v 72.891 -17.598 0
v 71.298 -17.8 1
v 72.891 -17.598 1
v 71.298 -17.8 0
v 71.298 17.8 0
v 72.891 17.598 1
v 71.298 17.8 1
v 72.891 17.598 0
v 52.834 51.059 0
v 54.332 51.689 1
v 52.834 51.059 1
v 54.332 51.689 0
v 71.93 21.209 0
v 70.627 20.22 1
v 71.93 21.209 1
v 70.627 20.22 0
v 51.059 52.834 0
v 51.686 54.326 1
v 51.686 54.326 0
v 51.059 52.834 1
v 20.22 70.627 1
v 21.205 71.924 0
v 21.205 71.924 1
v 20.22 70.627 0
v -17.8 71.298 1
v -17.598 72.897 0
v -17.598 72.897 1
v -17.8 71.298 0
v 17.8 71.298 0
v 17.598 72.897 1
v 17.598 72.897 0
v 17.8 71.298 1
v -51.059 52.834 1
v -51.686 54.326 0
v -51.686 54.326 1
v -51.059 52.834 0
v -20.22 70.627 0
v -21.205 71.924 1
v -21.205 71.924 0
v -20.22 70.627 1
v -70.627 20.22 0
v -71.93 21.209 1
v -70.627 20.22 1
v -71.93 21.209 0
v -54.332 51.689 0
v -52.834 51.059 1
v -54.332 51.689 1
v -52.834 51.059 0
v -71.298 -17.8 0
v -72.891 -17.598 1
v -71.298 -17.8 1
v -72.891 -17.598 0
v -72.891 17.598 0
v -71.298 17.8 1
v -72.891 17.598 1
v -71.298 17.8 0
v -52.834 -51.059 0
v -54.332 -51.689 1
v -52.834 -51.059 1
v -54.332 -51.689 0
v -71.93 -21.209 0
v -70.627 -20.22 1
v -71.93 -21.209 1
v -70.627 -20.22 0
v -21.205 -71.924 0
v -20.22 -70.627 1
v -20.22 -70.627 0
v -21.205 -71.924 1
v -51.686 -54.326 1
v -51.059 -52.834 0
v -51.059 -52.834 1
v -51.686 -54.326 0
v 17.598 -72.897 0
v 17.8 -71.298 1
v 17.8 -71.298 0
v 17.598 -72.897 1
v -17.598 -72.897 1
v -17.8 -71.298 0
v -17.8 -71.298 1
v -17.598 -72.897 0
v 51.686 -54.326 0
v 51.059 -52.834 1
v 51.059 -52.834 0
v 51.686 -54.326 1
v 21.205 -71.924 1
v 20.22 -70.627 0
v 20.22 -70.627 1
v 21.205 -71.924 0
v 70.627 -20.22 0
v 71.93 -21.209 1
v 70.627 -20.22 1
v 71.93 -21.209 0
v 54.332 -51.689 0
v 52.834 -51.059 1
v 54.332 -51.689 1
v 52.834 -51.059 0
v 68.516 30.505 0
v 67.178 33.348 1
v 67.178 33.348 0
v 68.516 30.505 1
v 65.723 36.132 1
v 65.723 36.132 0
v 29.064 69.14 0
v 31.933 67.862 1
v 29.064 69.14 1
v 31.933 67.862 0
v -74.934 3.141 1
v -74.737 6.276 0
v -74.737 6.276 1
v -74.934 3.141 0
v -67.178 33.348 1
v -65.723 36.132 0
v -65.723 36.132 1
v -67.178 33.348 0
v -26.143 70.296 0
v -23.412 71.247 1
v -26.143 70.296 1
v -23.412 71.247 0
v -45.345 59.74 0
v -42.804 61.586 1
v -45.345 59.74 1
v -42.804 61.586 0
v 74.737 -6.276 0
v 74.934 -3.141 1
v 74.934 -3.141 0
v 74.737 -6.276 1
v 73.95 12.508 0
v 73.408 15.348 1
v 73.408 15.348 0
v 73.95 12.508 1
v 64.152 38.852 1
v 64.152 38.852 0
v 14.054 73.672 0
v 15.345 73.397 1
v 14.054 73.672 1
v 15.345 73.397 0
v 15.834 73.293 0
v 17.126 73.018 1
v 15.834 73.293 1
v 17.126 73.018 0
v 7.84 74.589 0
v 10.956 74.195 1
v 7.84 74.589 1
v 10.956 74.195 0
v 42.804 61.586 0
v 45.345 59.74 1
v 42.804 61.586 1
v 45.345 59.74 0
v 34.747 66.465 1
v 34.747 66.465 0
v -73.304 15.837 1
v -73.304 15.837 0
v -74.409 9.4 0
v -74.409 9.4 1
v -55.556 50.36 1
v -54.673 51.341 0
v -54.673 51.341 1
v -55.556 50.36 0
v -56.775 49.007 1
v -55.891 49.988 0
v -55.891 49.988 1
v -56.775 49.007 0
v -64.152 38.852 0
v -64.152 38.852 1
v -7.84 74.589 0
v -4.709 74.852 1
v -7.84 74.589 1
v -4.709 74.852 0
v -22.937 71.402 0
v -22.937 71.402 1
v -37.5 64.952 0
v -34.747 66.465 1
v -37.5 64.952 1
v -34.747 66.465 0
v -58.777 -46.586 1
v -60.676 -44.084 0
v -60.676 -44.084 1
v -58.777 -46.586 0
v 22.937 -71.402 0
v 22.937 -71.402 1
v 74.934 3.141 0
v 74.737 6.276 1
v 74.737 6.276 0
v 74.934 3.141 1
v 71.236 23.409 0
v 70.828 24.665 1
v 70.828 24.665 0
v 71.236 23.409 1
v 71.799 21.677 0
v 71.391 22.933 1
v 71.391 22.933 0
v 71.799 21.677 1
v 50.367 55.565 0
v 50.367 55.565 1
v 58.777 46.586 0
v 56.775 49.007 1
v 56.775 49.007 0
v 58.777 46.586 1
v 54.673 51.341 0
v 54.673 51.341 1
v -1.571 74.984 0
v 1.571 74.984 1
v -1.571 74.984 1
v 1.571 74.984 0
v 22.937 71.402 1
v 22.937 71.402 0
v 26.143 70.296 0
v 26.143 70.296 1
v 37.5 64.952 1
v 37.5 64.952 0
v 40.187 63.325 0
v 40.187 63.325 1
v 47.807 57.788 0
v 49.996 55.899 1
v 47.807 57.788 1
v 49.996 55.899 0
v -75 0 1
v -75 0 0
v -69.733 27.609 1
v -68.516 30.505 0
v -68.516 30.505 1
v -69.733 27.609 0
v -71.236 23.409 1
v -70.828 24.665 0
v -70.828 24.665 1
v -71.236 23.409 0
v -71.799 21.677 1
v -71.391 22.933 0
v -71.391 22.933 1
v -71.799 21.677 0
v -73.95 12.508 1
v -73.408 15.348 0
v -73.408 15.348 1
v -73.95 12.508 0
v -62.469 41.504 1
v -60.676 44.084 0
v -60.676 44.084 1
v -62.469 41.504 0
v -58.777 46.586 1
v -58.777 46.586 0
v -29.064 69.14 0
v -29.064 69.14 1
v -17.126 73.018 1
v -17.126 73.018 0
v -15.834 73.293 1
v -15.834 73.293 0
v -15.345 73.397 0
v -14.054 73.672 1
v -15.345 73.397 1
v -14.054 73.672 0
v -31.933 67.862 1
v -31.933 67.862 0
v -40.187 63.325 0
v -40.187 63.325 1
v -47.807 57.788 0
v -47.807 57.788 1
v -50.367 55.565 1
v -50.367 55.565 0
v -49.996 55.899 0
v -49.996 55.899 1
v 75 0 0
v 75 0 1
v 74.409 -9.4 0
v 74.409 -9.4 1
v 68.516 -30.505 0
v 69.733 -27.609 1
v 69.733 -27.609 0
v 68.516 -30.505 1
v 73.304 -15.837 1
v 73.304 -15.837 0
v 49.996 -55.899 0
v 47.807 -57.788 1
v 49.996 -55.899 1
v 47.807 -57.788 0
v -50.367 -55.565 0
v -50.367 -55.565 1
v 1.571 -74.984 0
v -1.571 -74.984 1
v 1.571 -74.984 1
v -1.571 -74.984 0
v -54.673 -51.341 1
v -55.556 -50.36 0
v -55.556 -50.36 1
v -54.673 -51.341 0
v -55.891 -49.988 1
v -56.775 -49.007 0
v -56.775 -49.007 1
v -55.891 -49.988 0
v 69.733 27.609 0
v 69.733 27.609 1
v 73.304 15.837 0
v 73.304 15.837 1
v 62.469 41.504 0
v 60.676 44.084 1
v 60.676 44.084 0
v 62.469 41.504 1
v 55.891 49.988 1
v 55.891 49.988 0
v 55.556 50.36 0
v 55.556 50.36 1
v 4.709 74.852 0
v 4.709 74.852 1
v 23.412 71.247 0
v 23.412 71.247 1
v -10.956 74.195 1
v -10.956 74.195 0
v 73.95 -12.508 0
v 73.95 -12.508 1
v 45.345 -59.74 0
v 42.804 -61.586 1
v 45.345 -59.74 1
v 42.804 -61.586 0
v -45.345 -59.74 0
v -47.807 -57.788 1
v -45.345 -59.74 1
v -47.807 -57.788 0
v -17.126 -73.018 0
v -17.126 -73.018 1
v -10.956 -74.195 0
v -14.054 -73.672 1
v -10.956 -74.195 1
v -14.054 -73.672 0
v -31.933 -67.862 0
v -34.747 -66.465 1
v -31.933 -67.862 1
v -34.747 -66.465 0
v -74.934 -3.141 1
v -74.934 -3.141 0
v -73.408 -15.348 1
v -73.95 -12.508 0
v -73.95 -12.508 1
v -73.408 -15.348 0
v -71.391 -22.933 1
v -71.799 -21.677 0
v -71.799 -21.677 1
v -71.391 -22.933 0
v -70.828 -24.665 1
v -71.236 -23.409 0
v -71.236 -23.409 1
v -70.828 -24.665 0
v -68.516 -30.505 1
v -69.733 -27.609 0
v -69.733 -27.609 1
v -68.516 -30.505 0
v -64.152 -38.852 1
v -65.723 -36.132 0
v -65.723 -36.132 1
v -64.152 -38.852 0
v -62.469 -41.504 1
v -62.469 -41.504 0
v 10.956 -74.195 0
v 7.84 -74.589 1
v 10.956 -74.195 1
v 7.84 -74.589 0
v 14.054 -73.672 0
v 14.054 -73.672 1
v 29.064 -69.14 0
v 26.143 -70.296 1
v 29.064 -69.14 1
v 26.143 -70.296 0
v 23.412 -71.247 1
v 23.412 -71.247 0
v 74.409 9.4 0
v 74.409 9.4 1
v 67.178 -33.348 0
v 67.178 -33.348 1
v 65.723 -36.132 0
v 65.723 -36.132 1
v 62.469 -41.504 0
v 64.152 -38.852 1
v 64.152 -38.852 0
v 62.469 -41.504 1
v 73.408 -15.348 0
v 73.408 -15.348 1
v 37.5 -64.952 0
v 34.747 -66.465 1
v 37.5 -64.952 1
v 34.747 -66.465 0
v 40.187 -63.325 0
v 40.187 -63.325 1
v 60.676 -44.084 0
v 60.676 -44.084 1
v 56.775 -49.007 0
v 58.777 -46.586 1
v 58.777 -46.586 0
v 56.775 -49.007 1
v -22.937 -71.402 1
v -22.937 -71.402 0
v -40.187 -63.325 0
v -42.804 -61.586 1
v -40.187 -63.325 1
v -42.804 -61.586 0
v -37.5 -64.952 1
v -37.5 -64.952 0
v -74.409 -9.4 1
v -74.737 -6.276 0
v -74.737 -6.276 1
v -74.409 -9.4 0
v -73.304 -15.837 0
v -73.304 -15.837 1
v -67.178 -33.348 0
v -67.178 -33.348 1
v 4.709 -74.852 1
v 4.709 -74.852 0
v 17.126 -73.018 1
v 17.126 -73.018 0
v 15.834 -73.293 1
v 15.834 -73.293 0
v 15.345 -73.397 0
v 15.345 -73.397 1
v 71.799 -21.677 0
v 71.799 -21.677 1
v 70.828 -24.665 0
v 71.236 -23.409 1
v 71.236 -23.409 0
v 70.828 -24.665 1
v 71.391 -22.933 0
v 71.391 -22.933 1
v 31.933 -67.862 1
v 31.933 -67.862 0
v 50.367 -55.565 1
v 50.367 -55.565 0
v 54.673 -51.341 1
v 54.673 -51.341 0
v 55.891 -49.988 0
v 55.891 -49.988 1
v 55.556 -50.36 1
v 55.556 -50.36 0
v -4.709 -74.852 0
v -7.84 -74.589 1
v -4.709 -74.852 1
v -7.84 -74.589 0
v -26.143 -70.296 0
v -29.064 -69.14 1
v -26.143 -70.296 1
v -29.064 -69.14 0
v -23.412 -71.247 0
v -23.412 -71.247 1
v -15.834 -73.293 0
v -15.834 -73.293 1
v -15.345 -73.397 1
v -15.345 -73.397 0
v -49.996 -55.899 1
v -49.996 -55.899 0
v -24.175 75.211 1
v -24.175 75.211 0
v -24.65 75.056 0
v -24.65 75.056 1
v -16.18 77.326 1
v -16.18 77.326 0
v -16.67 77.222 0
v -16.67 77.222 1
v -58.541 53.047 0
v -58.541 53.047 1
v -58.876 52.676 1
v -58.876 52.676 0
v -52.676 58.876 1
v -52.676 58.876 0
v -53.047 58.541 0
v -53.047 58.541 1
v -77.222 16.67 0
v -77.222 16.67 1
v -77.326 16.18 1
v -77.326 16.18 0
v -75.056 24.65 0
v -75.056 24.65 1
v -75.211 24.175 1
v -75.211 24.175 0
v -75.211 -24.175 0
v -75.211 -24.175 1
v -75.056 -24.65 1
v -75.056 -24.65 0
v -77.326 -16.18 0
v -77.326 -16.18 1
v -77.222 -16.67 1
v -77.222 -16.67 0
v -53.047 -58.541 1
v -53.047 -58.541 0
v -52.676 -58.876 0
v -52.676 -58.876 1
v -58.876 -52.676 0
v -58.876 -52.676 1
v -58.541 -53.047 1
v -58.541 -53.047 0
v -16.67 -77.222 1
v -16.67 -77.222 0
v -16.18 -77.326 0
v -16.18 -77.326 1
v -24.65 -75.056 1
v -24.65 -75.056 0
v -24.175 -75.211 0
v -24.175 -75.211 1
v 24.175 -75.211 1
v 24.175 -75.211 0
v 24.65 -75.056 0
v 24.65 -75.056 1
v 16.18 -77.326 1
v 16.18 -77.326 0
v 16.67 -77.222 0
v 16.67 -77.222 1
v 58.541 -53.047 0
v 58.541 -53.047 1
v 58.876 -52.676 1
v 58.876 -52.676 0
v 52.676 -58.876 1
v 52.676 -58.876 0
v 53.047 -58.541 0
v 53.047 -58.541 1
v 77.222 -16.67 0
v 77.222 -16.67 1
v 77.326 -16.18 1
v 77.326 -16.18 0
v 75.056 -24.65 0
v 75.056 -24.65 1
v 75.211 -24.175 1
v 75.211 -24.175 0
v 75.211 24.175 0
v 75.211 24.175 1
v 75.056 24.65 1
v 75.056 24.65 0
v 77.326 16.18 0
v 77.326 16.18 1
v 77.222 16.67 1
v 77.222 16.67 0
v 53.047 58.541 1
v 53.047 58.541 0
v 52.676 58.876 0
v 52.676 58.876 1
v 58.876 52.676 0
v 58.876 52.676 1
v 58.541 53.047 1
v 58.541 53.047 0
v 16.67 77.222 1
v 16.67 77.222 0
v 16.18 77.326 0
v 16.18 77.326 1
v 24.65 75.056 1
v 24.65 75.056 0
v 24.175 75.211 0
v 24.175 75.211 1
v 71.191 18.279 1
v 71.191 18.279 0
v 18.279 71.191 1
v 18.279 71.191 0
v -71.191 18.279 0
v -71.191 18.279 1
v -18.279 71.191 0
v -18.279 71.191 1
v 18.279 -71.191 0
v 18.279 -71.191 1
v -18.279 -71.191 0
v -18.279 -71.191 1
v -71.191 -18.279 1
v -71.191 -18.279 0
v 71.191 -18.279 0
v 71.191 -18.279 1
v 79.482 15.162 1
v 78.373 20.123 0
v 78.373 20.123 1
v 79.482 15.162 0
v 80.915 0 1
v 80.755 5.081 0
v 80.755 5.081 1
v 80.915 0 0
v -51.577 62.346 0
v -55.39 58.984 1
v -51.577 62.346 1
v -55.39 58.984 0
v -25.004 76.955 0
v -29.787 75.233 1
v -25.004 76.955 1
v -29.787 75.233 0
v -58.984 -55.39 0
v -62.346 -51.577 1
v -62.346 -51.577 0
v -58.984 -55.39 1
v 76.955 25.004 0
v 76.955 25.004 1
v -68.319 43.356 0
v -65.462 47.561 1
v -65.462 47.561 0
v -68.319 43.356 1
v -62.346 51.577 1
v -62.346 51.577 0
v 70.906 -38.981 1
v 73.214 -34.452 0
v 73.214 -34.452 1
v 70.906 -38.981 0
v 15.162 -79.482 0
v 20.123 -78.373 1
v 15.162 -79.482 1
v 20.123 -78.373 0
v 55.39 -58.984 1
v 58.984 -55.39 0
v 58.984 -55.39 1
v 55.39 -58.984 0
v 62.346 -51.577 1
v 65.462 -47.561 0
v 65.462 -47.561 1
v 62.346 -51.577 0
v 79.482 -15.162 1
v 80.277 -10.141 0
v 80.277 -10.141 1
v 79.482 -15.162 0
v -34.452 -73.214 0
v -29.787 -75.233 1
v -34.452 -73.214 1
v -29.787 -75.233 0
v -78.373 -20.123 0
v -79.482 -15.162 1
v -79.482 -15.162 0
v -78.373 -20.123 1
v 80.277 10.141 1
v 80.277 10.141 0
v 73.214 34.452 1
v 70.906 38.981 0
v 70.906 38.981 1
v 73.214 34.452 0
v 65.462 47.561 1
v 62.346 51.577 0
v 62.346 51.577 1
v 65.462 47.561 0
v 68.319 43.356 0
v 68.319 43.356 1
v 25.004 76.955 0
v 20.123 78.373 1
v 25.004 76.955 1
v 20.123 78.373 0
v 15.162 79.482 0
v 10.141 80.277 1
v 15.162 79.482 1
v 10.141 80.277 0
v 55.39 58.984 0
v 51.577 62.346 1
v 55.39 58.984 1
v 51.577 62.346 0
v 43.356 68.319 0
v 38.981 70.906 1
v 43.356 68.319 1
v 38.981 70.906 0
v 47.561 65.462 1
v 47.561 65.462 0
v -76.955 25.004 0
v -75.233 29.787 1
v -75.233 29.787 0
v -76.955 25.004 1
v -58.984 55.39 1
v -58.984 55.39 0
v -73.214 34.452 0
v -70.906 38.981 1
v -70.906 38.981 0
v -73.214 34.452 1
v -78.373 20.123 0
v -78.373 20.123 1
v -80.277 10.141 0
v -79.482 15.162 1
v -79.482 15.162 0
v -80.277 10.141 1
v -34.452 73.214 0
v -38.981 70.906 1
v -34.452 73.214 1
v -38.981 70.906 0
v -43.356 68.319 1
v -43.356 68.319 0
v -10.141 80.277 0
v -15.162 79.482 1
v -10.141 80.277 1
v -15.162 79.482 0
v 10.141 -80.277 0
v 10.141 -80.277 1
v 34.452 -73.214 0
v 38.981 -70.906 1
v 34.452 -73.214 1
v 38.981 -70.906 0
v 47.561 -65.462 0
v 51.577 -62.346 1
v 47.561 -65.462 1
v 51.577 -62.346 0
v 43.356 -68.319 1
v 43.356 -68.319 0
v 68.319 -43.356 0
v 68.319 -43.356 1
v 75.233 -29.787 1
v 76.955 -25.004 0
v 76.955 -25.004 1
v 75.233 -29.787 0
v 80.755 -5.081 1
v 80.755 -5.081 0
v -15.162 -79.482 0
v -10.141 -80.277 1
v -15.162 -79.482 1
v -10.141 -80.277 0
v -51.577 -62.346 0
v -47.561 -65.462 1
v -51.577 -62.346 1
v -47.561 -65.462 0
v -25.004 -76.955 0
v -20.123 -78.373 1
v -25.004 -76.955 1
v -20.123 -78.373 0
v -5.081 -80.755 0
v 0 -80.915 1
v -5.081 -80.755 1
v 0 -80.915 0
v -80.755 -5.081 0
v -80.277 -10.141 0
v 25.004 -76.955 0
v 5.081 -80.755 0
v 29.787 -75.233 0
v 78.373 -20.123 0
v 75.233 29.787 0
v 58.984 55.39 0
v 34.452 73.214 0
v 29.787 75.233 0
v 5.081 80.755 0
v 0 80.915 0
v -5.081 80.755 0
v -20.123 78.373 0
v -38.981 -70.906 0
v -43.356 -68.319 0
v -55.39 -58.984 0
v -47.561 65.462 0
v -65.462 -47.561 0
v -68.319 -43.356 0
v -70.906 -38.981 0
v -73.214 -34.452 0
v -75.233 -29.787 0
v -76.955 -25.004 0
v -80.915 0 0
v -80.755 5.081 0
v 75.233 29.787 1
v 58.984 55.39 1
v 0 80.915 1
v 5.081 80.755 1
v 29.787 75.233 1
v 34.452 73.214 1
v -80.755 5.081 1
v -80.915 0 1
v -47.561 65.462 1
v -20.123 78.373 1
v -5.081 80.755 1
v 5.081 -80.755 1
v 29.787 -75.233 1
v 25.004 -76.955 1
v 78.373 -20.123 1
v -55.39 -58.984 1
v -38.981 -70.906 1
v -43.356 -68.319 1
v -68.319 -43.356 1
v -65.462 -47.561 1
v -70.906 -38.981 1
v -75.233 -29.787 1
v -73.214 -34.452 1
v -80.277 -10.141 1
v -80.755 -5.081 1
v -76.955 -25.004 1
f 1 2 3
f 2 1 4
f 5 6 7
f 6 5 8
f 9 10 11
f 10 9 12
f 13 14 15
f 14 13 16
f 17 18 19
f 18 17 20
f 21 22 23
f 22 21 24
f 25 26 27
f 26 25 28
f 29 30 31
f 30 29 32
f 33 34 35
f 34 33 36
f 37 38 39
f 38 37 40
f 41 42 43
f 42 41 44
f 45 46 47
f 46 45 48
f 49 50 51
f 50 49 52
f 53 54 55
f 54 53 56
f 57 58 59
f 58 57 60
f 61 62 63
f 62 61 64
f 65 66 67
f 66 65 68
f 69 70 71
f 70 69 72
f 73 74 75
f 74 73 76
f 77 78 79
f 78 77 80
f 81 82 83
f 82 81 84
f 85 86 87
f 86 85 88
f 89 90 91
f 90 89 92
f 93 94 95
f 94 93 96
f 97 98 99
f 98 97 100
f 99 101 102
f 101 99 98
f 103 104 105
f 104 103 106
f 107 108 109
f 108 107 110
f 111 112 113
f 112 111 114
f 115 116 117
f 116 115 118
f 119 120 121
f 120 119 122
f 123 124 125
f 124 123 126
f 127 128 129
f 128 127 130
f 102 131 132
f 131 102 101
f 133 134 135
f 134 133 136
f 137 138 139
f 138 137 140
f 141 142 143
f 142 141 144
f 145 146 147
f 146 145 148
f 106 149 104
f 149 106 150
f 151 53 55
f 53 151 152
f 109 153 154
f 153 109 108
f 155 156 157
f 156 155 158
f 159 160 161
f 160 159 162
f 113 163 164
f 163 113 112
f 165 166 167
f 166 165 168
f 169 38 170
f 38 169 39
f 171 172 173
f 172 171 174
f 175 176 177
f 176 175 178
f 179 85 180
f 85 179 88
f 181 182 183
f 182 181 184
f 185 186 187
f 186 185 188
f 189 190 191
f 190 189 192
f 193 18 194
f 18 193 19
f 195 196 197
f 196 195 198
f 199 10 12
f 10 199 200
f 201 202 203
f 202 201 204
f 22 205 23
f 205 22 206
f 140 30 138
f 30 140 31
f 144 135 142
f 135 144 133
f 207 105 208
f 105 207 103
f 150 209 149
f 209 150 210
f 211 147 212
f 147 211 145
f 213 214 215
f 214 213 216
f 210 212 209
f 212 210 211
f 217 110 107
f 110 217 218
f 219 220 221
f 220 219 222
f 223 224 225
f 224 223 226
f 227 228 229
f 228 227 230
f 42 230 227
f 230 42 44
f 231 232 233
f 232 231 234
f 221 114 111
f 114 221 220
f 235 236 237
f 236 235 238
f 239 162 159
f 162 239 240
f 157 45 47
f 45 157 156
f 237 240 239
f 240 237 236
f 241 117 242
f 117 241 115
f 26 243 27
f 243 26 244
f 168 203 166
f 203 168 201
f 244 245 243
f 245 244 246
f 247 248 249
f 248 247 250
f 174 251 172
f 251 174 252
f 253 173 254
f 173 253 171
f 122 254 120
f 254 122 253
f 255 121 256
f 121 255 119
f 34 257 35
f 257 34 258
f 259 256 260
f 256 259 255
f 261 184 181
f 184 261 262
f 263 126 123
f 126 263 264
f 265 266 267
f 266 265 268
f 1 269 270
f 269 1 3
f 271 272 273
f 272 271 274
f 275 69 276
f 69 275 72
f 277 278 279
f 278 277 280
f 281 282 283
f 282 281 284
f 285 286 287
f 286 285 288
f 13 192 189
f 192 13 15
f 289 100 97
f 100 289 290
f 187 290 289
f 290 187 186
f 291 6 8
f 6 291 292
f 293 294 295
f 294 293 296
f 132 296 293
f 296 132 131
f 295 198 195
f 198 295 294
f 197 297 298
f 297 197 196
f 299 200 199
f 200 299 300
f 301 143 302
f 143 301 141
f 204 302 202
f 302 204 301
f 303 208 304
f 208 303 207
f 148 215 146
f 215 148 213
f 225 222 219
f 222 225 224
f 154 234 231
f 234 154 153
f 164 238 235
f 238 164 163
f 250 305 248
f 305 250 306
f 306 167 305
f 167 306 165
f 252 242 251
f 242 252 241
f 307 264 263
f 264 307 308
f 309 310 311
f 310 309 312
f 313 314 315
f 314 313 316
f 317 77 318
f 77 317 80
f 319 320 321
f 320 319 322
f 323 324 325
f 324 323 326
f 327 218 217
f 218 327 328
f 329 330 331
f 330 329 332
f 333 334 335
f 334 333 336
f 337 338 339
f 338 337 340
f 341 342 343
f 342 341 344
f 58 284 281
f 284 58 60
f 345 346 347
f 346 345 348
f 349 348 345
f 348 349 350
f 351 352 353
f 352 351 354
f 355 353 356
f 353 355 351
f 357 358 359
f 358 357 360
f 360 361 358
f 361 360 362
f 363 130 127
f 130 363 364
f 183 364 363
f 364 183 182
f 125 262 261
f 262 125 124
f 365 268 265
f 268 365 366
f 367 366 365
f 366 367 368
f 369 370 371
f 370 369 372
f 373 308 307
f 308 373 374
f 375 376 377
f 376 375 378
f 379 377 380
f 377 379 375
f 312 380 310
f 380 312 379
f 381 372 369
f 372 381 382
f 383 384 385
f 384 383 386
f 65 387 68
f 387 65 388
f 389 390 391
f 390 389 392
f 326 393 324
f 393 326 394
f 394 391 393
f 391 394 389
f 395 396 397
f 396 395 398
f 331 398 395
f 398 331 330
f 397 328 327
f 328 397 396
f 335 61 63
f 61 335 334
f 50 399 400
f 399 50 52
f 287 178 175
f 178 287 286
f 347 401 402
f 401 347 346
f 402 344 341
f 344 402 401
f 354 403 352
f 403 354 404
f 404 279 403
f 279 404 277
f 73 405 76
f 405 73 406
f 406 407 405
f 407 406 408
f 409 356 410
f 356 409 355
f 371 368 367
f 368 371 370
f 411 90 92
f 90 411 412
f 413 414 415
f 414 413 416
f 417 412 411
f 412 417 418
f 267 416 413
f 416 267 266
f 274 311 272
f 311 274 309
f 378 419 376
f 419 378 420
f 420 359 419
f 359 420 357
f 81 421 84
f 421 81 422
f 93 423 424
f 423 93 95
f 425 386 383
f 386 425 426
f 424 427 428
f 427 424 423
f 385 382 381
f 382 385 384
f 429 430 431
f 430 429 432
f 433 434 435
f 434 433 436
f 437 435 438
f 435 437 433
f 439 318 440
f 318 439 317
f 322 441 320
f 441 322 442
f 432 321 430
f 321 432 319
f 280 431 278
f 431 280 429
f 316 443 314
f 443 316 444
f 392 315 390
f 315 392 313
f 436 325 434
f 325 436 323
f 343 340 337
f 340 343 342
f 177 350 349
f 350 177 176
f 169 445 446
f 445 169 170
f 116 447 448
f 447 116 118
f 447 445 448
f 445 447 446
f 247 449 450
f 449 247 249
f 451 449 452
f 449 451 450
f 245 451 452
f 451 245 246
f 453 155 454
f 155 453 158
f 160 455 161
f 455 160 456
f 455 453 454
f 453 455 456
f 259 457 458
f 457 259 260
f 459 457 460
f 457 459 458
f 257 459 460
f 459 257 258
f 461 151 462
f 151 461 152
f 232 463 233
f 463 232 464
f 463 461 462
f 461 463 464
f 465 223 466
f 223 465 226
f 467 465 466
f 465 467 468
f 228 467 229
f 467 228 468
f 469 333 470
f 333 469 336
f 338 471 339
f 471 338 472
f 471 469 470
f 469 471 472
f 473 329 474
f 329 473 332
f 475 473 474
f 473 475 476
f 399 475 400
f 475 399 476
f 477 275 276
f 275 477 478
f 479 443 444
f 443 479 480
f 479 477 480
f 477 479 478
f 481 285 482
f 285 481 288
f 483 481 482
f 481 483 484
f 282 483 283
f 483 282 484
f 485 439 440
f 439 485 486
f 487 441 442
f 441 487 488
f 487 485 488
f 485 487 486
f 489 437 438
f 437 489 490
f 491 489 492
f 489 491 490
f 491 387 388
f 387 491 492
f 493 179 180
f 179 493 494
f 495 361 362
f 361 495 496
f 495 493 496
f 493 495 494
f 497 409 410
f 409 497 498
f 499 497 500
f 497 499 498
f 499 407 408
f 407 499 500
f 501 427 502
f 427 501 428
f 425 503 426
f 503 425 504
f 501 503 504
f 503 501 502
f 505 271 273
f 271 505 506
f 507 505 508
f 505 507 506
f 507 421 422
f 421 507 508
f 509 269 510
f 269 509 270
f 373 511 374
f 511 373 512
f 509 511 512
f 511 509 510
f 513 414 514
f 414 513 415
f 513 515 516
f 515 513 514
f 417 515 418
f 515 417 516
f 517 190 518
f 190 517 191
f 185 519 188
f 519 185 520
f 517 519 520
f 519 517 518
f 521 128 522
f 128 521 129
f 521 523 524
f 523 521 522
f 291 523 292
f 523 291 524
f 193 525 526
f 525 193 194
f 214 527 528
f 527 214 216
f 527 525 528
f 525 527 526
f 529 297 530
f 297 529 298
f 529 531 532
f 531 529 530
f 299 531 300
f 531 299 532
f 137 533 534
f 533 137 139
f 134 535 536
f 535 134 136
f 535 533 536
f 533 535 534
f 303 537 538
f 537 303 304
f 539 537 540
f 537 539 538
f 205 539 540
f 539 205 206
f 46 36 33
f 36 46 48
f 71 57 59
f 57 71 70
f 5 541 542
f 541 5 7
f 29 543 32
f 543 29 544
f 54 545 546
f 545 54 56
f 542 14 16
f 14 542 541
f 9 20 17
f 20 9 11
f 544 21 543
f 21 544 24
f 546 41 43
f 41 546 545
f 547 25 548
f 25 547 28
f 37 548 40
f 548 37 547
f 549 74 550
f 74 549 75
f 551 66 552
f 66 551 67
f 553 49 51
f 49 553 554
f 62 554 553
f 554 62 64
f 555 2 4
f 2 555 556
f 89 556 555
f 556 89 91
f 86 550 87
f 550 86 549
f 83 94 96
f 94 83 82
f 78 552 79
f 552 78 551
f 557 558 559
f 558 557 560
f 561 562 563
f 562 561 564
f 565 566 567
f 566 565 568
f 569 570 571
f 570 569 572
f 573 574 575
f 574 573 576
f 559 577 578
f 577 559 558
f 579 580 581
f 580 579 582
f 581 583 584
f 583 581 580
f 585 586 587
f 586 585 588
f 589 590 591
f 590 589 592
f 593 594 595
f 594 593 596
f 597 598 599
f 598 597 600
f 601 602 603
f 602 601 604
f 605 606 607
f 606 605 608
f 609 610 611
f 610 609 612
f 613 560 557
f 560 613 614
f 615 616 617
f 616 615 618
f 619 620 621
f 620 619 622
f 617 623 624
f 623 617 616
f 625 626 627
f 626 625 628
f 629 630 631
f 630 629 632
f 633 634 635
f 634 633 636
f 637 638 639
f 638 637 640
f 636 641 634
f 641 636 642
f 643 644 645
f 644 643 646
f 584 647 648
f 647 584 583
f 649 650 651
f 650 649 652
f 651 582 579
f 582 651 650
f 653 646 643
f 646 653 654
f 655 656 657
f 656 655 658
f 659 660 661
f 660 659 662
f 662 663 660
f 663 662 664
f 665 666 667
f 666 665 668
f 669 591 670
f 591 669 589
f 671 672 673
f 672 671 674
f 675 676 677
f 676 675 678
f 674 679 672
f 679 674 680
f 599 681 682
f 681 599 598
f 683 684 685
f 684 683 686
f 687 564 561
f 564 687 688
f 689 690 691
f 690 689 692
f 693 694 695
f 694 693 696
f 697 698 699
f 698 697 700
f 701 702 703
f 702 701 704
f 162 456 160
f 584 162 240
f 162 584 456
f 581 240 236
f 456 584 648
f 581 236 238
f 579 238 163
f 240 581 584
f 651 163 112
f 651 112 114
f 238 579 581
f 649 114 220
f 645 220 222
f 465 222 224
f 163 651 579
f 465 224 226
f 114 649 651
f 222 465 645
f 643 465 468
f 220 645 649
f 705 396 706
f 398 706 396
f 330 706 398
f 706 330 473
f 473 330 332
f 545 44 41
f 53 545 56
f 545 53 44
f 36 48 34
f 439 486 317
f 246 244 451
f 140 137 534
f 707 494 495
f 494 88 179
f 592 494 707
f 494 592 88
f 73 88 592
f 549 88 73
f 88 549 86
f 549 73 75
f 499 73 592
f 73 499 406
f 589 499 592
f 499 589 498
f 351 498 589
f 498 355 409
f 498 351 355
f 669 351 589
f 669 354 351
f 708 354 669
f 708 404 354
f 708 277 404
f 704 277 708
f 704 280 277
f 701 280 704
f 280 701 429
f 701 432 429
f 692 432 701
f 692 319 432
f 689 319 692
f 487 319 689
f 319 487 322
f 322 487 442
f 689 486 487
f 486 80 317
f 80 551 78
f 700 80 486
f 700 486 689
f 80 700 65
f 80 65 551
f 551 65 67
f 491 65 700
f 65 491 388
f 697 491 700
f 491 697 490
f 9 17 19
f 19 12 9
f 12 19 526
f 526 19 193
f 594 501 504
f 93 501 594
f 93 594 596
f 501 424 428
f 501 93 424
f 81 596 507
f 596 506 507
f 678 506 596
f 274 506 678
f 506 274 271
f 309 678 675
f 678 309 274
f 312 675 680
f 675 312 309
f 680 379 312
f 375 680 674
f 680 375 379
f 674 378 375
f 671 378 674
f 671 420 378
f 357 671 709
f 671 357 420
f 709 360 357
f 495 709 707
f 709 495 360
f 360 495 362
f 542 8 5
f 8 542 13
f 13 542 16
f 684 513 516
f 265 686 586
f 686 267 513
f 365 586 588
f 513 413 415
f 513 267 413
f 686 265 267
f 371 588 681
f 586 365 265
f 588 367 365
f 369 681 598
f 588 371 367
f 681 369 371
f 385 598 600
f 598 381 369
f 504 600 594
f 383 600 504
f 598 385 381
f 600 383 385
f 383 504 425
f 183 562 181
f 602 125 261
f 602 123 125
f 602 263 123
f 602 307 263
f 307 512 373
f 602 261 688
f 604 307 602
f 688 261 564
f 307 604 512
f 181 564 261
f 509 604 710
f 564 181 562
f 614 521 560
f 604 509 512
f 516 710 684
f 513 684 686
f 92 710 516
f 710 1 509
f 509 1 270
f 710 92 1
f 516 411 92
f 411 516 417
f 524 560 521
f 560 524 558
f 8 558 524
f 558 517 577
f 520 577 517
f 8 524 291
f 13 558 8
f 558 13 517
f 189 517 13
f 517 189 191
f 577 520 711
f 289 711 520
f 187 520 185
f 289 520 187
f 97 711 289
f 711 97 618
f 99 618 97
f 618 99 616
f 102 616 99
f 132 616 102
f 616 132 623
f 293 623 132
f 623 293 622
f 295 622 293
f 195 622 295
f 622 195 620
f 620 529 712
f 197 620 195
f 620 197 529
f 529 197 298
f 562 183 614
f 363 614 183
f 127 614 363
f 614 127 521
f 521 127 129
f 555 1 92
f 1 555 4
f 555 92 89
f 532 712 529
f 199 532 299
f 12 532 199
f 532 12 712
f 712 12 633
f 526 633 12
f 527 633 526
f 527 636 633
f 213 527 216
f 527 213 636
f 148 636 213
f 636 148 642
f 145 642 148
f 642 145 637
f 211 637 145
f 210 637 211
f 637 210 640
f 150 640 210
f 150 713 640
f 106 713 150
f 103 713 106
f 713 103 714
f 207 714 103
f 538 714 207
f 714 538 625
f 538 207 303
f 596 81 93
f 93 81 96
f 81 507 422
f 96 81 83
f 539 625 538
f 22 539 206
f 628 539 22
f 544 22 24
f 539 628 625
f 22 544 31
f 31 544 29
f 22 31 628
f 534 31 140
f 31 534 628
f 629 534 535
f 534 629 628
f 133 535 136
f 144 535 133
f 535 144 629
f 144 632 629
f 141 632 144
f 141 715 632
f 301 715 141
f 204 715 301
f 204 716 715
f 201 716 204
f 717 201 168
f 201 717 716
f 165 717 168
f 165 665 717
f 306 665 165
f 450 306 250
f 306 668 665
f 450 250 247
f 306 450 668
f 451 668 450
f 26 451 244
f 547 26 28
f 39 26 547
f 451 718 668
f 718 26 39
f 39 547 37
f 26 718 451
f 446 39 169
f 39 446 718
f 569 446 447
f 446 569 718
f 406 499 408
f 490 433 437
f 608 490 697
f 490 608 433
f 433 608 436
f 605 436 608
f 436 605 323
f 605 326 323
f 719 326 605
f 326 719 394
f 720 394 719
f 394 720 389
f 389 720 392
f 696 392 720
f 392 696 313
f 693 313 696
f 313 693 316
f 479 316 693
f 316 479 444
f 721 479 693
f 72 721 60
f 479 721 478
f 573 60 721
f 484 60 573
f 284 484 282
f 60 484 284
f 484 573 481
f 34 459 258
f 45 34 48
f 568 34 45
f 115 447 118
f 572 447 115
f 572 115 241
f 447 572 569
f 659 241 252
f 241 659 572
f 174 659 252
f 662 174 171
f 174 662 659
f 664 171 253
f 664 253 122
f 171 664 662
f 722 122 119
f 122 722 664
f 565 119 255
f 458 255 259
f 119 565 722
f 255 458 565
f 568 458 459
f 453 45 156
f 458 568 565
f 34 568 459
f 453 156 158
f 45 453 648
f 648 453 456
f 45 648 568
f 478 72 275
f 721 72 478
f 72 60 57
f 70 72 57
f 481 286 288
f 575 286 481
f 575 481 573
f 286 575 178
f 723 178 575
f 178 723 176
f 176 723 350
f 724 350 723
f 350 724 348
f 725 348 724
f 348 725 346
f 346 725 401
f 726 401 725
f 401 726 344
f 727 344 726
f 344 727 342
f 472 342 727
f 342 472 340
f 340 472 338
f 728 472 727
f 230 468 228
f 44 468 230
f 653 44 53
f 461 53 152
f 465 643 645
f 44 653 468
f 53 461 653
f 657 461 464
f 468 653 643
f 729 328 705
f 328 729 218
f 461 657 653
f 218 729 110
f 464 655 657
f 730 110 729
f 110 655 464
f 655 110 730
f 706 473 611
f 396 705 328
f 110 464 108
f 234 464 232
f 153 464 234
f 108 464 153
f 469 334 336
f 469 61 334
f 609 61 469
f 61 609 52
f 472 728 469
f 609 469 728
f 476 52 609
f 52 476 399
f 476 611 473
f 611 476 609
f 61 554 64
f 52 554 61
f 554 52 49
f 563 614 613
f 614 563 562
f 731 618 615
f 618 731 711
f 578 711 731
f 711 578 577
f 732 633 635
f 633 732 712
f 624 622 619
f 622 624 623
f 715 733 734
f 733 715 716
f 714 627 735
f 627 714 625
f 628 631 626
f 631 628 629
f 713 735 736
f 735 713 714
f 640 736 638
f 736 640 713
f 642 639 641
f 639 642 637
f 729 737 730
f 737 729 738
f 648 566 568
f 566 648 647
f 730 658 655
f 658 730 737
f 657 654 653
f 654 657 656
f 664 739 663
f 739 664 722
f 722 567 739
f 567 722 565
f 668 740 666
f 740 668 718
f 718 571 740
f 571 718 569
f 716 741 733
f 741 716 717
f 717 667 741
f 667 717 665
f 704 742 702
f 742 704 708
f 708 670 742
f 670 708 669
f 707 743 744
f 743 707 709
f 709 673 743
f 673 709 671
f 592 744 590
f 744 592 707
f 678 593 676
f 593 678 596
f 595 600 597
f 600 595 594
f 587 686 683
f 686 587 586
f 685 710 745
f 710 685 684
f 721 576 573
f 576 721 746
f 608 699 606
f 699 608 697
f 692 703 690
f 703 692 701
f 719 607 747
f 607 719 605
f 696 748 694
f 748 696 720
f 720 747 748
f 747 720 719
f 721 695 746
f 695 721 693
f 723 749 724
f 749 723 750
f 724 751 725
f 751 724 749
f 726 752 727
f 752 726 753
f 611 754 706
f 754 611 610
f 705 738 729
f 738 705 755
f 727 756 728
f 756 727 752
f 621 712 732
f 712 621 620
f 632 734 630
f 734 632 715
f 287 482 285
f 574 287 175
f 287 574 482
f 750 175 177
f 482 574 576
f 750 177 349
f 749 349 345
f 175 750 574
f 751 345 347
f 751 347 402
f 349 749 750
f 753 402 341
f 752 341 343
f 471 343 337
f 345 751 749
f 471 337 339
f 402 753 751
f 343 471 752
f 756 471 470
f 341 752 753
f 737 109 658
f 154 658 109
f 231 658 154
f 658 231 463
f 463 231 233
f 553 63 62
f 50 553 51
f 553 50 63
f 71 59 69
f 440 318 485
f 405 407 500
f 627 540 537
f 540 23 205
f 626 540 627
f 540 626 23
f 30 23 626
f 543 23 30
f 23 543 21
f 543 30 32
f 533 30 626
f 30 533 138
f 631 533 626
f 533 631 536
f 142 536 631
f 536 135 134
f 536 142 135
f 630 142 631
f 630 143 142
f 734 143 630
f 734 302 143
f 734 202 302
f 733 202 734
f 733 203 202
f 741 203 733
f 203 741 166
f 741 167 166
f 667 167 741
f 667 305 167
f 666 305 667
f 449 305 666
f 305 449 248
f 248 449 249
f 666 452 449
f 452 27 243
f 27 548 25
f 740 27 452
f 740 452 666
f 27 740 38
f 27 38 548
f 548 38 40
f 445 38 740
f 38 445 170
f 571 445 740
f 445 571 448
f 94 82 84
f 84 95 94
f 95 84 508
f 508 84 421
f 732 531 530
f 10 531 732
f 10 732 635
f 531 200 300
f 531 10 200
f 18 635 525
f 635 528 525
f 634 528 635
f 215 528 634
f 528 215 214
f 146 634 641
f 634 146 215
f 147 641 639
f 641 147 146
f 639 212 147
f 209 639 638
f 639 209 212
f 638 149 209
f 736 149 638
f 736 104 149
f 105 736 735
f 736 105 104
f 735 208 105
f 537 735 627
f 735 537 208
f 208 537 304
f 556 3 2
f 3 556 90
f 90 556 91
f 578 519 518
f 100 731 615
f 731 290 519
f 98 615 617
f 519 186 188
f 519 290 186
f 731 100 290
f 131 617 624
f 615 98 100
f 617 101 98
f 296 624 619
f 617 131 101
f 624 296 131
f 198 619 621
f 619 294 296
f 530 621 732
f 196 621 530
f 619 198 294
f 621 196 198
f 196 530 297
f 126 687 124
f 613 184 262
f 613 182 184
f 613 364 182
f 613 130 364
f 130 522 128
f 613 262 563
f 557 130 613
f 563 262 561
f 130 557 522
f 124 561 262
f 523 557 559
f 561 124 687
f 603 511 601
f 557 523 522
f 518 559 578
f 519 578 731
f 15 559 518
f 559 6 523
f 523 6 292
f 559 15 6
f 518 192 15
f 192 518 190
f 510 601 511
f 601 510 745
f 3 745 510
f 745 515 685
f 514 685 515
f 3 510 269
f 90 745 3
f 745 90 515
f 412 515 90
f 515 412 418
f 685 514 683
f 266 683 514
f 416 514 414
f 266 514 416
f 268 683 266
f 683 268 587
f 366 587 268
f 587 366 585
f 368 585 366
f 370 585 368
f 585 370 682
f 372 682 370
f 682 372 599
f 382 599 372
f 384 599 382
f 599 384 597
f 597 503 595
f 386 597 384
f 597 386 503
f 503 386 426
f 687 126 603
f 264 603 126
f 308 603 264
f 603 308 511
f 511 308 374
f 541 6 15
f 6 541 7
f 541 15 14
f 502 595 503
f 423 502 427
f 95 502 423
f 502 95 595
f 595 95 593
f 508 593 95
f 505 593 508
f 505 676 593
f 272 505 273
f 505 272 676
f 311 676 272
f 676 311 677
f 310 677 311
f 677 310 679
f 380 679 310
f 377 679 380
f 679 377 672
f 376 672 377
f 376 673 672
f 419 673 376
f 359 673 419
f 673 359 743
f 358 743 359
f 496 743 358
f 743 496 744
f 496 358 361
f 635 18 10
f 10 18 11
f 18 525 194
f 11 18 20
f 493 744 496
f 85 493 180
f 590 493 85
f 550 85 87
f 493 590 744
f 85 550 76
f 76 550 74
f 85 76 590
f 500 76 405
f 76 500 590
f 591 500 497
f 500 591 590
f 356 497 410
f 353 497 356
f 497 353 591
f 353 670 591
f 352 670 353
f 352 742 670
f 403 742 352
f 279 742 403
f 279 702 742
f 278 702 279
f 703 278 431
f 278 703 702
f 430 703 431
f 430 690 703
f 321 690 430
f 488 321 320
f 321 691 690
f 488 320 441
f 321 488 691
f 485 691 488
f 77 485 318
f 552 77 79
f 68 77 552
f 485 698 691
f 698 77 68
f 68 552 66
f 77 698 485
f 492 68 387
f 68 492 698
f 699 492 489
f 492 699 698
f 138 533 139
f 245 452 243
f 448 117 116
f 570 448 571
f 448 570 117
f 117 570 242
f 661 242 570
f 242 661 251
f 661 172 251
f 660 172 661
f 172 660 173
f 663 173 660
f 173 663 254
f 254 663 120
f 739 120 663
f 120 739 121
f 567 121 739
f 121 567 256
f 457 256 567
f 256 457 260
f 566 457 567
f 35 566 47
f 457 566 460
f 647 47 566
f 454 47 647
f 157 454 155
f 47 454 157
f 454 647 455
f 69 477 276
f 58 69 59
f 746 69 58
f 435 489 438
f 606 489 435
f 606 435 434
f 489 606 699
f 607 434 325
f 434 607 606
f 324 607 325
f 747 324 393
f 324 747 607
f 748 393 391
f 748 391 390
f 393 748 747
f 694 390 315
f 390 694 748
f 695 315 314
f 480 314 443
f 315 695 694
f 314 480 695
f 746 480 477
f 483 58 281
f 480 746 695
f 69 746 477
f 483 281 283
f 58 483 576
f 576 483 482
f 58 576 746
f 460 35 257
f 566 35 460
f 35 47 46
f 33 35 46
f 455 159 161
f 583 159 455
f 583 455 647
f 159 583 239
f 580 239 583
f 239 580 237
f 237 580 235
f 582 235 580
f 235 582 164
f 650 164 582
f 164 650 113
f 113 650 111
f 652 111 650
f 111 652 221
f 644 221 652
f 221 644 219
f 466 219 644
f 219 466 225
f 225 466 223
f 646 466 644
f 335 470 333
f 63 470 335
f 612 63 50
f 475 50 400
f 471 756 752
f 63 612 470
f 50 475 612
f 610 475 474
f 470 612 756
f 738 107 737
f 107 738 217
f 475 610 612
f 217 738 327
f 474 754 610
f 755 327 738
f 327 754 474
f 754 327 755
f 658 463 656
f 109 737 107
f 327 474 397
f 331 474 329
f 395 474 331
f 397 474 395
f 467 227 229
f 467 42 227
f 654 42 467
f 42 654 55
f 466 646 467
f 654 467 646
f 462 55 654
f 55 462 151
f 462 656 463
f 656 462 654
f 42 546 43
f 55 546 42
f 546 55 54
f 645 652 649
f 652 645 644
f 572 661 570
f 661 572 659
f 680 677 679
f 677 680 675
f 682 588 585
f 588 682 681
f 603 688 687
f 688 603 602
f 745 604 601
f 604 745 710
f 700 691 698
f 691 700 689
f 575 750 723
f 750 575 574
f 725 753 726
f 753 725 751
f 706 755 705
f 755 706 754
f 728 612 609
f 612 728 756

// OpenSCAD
// file: spool.scad
include <lib/parameters.scad>
use <lib/util.scad>
use <lib/gear_util.scad>

//spool_outer();
module spool_outer(spools = 1){
  difference(){
    union(){
      // Edge to keep line in place
      cylinder(r = Sep_disc_radius, h = 1, $fn=100);
      cylinder(r = Spool_r, h = Spool_height+1, $fn=150);
      for(s=[0:spools-1])
        if(s > 0)
          translate([0,0, 1 + s*(Spool_height + 1)])
            cylinder(r = Spool_r, h = Spool_height, $fn=150);
      translate([0,0,0.1]) // Sink  (0.5 - 0.1) = 0.4 mm back to make extra space for torx
        torx(h=Torx_depth+spools*(Spool_height + 1) - 0.5, female=false);
    }
    for(s=[0:spools-1]){
      for(v=[0:120:359])
        rotate([0,0,v + 30*s])
          translate([0, Spool_r/2, 1+Spool_height/2 + s*(1 + Spool_height)])
            rotate([-90,00,0])
              for(i=[-2.2,2.2])
                translate([i,0,0])
                  cylinder(r=1.2, h=Spool_r);
    }
    translate([0,0,-1])
      cylinder(d=b608_outer_dia+2.5, h=3,$fn=150);
    translate([0,0,-1])
      cylinder(r=Spool_r-Spool_outer_wall_th, h=spools*(Spool_height + 1)+Torx_depth+1,$fn=150);
  }
}

//color([0.4,0.75,0.4]) import("../stl/spool.stl");
spool();
module spool(){
  spool_outer();
  spool_center();
}
// file: lib/gear_util.scad
// Belt support with help of droftarts' code, found here:
// https://www.thingiverse.com/thing:16627
// Visited 28 September 2018

include <parameters.scad>
use <util.scad>

//spool_center();
module spool_center(){
  bearing_wall_th = Spool_center_bearing_wall_th;
  center_h = Spool_height+Torx_depth-4;
  ek_w = 8;
  eang = 12; // just for placement of inner round corners
  //b608();
  difference(){
    cylinder(r=b608_outer_dia/2+bearing_wall_th, h=center_h,$fn=6*8);
    translate([0,0,-1])
      cylinder(d=b608_outer_dia,h=b608_width+1.5);
    translate([0,0,-1])
      cylinder(d=b608_outer_dia-1.5,h=b608_width+2*GT2_belt_width);
    translate([0,0,-1])
      cylinder(d1=b608_outer_dia+1.5, d2=b608_outer_dia-0.1,h=1.5);
  }
  for(a=[0:360/6:359]){
    rotate([0,0,a]){
    translate([b608_outer_dia/2+bearing_wall_th-1,-ek_w/2,0])
      cube([(Spool_r-bearing_wall_th-b608_outer_dia/2), ek_w, center_h]);
    }
  }
  difference(){
    for(a=[0:360/6:359])
      rotate([0,0,a]){
        translate([Spool_r-Spool_outer_wall_th-4, -ek_w/2,0])
          cube([5,ek_w,center_h+4]);
        for(m=[0,1])
          mirror([0,m,0]){
            translate([Spool_r-Spool_outer_wall_th-0.37,ek_w/2,0])
              rotate([0,0,90])
                inner_round_corner(r=2, h=Spool_height+Torx_depth, back=0.4, $fn=4*6);
            translate([b608_outer_dia/2+bearing_wall_th-0.95, ek_w/2-0.2,0])
              rotate([0,0,eang/2])
                inner_round_corner(r=2, h=center_h, ang=90-eang, $fn=4*5);
          }
      }
    translate([0,0,Spool_height+Torx_depth])
      rotate_extrude($fn=100)
        translate([Spool_r-Spool_outer_wall_th-4,0])
          circle(r=4,$fn=40);
  }
}

//torx(female=true);
module torx(h = Spool_height + 2, r = Spool_r, female=false){
  circs = 12;
  intersection(){
    if(female){
      cylinder(r=r+0.1, h=h, $fn=150);
    } else {
      cylinder(r=r, h=h, $fn=150);
    }
    for(i=[0:1:circs])
      rotate([0,0,i*360/circs]){
        translate([r-5,0,-1])
        cylinder(r=r/4.2, h=h+2, $fn=50);
      if(female){
        rotate([0,0,360/(2*circs)]){
           translate([r/2 + 16,0,-1])
             cylinder(r2=1, r1=r/1.9, h=h+2, $fn=50);
           translate([r-10-3.5,0,-1])
             cylinder(r=10, h=h+2, $fn=50);
          }
        }
      }
  }
  cylinder(r=r-5,h=h);
}

module GT2_2mm_tooth(h){
  linear_extrude(height=h) polygon([[0.747183,-0.5],[0.747183,0],[0.647876,0.037218],[0.598311,0.130528],[0.578556,0.238423],[0.547158,0.343077],[0.504649,0.443762],[0.451556,0.53975],[0.358229,0.636924],[0.2484,0.707276],[0.127259,0.750044],[0,0.76447],[-0.127259,0.750044],[-0.2484,0.707276],[-0.358229,0.636924],[-0.451556,0.53975],[-0.504797,0.443762],[-0.547291,0.343077],[-0.578605,0.238423],[-0.598311,0.130528],[-0.648009,0.037218],[-0.747183,0],[-0.747183,-0.5]]);
}

function tooth_spacing(tooth_pitch, pitch_line_offset, teeth)
  = (2*((teeth*tooth_pitch)/(3.14159265*2) - pitch_line_offset));

//GT2_2mm_pulley_extrusion(4, 170);
module GT2_2mm_pulley_extrusion(h, teeth, additional_tooth_width = 0, additional_tooth_depth = 0){

  tooth_depth = 0.764;
  tooth_width = 1.494;
  tooth_depth_scale = ((tooth_depth + additional_tooth_depth ) / tooth_depth) ;
  tooth_width_scale = (tooth_width + additional_tooth_width ) / tooth_width;
  pulley_OD = tooth_spacing (2,0.254, teeth);
  tooth_distance_from_centre = sqrt( pow(pulley_OD/2,2)
                                    -pow((tooth_width+additional_tooth_width)/2,2));

  echo(str("Number of teeth: ", teeth));
  echo(str("Pulley Outside Diameter: ", pulley_OD, " mm"));

  difference(){
    cylinder(r=pulley_OD/2, h=h, $fn=teeth*4);
    for(i=[1:teeth])
      rotate([0,0,i*(360/teeth)])
        translate([0,-tooth_distance_from_centre, -1])
          scale ([ tooth_width_scale , tooth_depth_scale , 1 ])
            GT2_2mm_tooth(); // Teeth
  }
}

module GT2_flanged_motor_gear(teeth, shaft_dia){
  difference(){
    union(){
      cylinder(d = GT2_motor_gear_outer_dia, h = 7.4);
      translate([0,0,GT2_motor_gear_height - 1.5])
        cylinder(r1 = GT2_motor_gear_outer_dia/2 - 1.5,
            r2 = GT2_motor_gear_outer_dia/2,
            h = 1.5);
      GT2_2mm_pulley_extrusion(GT2_motor_gear_height, teeth);
    }
    translate([0,0,-1])
      cylinder(d = shaft_dia + 0.2, h = GT2_motor_gear_height + 2, $fn=20);
    translate([0,0,-1])
      cylinder(r1 = (shaft_dia + 0.2)/2 + 2,
               r2 = (shaft_dia + 0.2)/2 - 1,
               h = 3, $fn=20);
    translate([0,0,GT2_motor_gear_height-2])
      cylinder(r1 = (shaft_dia + 0.2)/2 - 1,
               r2 = (shaft_dia + 0.2)/2 + 2,
               h = 3, $fn=20);
    for(zrot=[0,90])
      translate([0,0,7.4/2])
        rotate([90,0,zrot])
        cylinder(d=4, h=GT2_motor_gear_outer_dia/2 + 1);
  }
}

// For rendering purposes
//GT2_motor_gear();
module GT2_motor_gear(shaft_dia=Donkey_shaft_d){
  GT2_flanged_motor_gear(GT2_motor_gear_teeth, shaft_dia);
}
// file: lib/parameters.scad
// Parameters shared between modules
Base_th = 2;
Beam_width = 15;
Wiggle = 0.25;
Fat_beam_width = Beam_width + Wiggle;
Beam_length = 400;
Wall_th = 2.5;
Min_beam_width = 12.5;
Max_beam_width = 17.5;
Zip_th = 2;
Zip_h = Zip_th + Max_beam_width - Min_beam_width;
Zip_w = 5.0;
Nema17_cube_width          = 42.43;
Nema17_screw_hole_width    = 43.74; // Opposite corner screws
Nema17_ring_diameter       = 22;
Nema17_cube_height         = 39.36;
Nema17_shaft_height        = 63.65;
Nema17_ring_height         = 2;
Nema17_shaft_radius        = 5/2;
b608_outer_dia = 22.2;
b608_width = 7.05;
b608_bore_r = 4;
Gap_between_sandwich_and_plate = 1.5 + Base_th; // 1.5 mm for wiggle
Motor_bracket_flerp_r = 6;
Motor_bracket_flerp = 14;
Motor_bracket_cw = Nema17_cube_width + 6;
Motor_bracket_att_ang = 50;
Mounting_screw_d = 3.5;
Mounting_screw_head_d = 14;
Spool_outer_wall_th = 4;

// Corner clamp parameters
Cc_l1 = (Fat_beam_width+2*Wall_th)*2*sqrt(3);
Cc_rad_b = 4;
Cc_action_point_from_mid = Cc_l1/sqrt(3)-2*Cc_rad_b-7;  // 5 chosen arbitrarily
Cc_plastic_length = sqrt(Cc_action_point_from_mid*Cc_action_point_from_mid
                       - (Cc_action_point_from_mid/2)*(Cc_action_point_from_mid/2));

// The distance between the two action points on the mover
Sidelength = Beam_length + 2*Cc_plastic_length;

/////// Gear parameters ////////////
Circular_pitch = 262;
Motor_teeth = 10;
Gear_height = 21.4-3;
Motor_pitch                      = (Motor_teeth*Circular_pitch/360);
Motor_pitch_diametrial           = Motor_teeth/(2*Motor_pitch);
Motor_outer_radius               = Motor_pitch + 1/Motor_pitch_diametrial;
Spool_teeth = 100;
Spool_r = 75;
Spool_height = 8;
Spool_pitch                      = (Spool_teeth*Circular_pitch/360);
Spool_pitch_diametrial           = Spool_teeth/(2*Spool_pitch);
Spool_outer_radius               = Spool_pitch + 1/Spool_pitch_diametrial;
Sep_disc_radius = 161.83/2; // Made to match 255 teeth gt2 pulley
Motor_bracket_depth = Gear_height+1+7+Nema17_ring_height+1+Gap_between_sandwich_and_plate;
Spool_core_flerp0 = 16+3;

/////// Lineroller parameters ////////////
b623_width  = 4;
b623_bore_r = 3/2;
b623_vgroove_big_r = 12/2;
b623_vgroove_small_r = 10/2;
b623_outer_dia = 10;

Depth_of_roller_base = 18;
Roller_flerp = 6;
Roller_l = 42;
Roller_fl = (Roller_l - Depth_of_roller_base)/2;

Line_roller_wall_th = 5;

Line_roller_ABC_winch_h =  Gap_between_sandwich_and_plate
                           + Sep_disc_radius
                           - Spool_r
                           + Depth_of_roller_base/2
                           + b623_vgroove_small_r;


Ptfe_r = 2.1;
Roller_base_r = 8;
Screw_h = 2;
Screw_head_h = 2;
M3_screw_head_d = 5.8;
Spool_center_bearing_wall_th = 5;
Corner_clamp_bearings_center_to_center = 15;
Anchor_bearings_center_to_center = Corner_clamp_bearings_center_to_center + b623_outer_dia;

//// Lineroller anchor parameters /////

Back_bearing_x = b623_vgroove_big_r + 1.5;
Front_bearing_x = -b623_vgroove_big_r - 5;
Move_tower = -12.2;
Lower_bearing_z = 13;
Higher_bearing_z = Lower_bearing_z + Corner_clamp_bearings_center_to_center;

//// Cable Clamp parameters /////
Bit_width = 12;
Cable_r=2.5;


//// Donkey and encoder parameters /////

Donkey_shaft_d = 6;
Donkey_h = 65.12;
Donkey_body_d = 50;
Donkey_feet_th = 3.5;

Encoder_LDP3806_shaft_d = 6;
Encoder_LDP3806_d = 38;

// Belt drive parameters
GT2_belt_width = 6.5;
GT2_gear_height = GT2_belt_width + 2;
GT2_motor_gear_height = 16;
GT2_motor_gear_outer_dia = 16;
GT2_spool_gear_teeth = 255;
GT2_motor_gear_teeth = 20;
Torx_depth = GT2_gear_height/2;
Belt_roller_h = 56;
Belt_thickness = 1.4;

Belt_roller_space_between_walls = 2*b623_width + 0.8;
Belt_roller_wall_th = (Depth_of_roller_base - Belt_roller_space_between_walls)/2+2;
Belt_roller_top_adj_screw_x = Depth_of_roller_base/2-3.7;
Belt_roller_top_adj_screw_y = Belt_roller_space_between_walls/2+2;
Belt_roller_containing_cube_ywidth = Belt_roller_space_between_walls+8.5;
Belt_roller_insert_h = 18;



// Spacer parameters
Sandwich_ABC_width = 2*(1+Spool_height) + GT2_gear_height;
Sandwich_D_width = 3*(1+Spool_height) + GT2_gear_height;

Spacer_ABC_width = Sandwich_ABC_width - 2*b608_width;
Spacer_D_width = Sandwich_D_width -2*b608_width;


spd = Spool_height+GT2_gear_height;
// Horizontal_deflector_cube_y_size must be exact this number
// because we want to deflect AB-lines
// 60 degrees on the ceiling unit, and we want to put two
// deflectors in a row and get a distance between bearings
// that maintain the distance d when deflecting 60 degrees
Horizontal_deflector_cube_y_size = (2/sqrt(3))*spd;


// Top plate parameters needed for layout slicer
Yshift_top_plate = -297.8;
// main file
include <lib/parameters.scad>
use <lib/gear_util.scad>

use <spool.scad>

sep_disc();
module sep_disc(){
  difference(){
    cylinder(r = Sep_disc_radius, h = 1, $fn=100);
    translate([0,0,-1]){
      torx(h=3, female=false);
      cylinder(r = Spool_r - 1.5, h = 3, $fn=100);
      for(v=[0:30:359])
        rotate([0,0,v])
          for(a=[1,-1])
            rotate([0,0,15+a*3])
            translate([-0.5/2,0,0])
              cube([0.5,Spool_r+4,3]);
    }
  }
}
